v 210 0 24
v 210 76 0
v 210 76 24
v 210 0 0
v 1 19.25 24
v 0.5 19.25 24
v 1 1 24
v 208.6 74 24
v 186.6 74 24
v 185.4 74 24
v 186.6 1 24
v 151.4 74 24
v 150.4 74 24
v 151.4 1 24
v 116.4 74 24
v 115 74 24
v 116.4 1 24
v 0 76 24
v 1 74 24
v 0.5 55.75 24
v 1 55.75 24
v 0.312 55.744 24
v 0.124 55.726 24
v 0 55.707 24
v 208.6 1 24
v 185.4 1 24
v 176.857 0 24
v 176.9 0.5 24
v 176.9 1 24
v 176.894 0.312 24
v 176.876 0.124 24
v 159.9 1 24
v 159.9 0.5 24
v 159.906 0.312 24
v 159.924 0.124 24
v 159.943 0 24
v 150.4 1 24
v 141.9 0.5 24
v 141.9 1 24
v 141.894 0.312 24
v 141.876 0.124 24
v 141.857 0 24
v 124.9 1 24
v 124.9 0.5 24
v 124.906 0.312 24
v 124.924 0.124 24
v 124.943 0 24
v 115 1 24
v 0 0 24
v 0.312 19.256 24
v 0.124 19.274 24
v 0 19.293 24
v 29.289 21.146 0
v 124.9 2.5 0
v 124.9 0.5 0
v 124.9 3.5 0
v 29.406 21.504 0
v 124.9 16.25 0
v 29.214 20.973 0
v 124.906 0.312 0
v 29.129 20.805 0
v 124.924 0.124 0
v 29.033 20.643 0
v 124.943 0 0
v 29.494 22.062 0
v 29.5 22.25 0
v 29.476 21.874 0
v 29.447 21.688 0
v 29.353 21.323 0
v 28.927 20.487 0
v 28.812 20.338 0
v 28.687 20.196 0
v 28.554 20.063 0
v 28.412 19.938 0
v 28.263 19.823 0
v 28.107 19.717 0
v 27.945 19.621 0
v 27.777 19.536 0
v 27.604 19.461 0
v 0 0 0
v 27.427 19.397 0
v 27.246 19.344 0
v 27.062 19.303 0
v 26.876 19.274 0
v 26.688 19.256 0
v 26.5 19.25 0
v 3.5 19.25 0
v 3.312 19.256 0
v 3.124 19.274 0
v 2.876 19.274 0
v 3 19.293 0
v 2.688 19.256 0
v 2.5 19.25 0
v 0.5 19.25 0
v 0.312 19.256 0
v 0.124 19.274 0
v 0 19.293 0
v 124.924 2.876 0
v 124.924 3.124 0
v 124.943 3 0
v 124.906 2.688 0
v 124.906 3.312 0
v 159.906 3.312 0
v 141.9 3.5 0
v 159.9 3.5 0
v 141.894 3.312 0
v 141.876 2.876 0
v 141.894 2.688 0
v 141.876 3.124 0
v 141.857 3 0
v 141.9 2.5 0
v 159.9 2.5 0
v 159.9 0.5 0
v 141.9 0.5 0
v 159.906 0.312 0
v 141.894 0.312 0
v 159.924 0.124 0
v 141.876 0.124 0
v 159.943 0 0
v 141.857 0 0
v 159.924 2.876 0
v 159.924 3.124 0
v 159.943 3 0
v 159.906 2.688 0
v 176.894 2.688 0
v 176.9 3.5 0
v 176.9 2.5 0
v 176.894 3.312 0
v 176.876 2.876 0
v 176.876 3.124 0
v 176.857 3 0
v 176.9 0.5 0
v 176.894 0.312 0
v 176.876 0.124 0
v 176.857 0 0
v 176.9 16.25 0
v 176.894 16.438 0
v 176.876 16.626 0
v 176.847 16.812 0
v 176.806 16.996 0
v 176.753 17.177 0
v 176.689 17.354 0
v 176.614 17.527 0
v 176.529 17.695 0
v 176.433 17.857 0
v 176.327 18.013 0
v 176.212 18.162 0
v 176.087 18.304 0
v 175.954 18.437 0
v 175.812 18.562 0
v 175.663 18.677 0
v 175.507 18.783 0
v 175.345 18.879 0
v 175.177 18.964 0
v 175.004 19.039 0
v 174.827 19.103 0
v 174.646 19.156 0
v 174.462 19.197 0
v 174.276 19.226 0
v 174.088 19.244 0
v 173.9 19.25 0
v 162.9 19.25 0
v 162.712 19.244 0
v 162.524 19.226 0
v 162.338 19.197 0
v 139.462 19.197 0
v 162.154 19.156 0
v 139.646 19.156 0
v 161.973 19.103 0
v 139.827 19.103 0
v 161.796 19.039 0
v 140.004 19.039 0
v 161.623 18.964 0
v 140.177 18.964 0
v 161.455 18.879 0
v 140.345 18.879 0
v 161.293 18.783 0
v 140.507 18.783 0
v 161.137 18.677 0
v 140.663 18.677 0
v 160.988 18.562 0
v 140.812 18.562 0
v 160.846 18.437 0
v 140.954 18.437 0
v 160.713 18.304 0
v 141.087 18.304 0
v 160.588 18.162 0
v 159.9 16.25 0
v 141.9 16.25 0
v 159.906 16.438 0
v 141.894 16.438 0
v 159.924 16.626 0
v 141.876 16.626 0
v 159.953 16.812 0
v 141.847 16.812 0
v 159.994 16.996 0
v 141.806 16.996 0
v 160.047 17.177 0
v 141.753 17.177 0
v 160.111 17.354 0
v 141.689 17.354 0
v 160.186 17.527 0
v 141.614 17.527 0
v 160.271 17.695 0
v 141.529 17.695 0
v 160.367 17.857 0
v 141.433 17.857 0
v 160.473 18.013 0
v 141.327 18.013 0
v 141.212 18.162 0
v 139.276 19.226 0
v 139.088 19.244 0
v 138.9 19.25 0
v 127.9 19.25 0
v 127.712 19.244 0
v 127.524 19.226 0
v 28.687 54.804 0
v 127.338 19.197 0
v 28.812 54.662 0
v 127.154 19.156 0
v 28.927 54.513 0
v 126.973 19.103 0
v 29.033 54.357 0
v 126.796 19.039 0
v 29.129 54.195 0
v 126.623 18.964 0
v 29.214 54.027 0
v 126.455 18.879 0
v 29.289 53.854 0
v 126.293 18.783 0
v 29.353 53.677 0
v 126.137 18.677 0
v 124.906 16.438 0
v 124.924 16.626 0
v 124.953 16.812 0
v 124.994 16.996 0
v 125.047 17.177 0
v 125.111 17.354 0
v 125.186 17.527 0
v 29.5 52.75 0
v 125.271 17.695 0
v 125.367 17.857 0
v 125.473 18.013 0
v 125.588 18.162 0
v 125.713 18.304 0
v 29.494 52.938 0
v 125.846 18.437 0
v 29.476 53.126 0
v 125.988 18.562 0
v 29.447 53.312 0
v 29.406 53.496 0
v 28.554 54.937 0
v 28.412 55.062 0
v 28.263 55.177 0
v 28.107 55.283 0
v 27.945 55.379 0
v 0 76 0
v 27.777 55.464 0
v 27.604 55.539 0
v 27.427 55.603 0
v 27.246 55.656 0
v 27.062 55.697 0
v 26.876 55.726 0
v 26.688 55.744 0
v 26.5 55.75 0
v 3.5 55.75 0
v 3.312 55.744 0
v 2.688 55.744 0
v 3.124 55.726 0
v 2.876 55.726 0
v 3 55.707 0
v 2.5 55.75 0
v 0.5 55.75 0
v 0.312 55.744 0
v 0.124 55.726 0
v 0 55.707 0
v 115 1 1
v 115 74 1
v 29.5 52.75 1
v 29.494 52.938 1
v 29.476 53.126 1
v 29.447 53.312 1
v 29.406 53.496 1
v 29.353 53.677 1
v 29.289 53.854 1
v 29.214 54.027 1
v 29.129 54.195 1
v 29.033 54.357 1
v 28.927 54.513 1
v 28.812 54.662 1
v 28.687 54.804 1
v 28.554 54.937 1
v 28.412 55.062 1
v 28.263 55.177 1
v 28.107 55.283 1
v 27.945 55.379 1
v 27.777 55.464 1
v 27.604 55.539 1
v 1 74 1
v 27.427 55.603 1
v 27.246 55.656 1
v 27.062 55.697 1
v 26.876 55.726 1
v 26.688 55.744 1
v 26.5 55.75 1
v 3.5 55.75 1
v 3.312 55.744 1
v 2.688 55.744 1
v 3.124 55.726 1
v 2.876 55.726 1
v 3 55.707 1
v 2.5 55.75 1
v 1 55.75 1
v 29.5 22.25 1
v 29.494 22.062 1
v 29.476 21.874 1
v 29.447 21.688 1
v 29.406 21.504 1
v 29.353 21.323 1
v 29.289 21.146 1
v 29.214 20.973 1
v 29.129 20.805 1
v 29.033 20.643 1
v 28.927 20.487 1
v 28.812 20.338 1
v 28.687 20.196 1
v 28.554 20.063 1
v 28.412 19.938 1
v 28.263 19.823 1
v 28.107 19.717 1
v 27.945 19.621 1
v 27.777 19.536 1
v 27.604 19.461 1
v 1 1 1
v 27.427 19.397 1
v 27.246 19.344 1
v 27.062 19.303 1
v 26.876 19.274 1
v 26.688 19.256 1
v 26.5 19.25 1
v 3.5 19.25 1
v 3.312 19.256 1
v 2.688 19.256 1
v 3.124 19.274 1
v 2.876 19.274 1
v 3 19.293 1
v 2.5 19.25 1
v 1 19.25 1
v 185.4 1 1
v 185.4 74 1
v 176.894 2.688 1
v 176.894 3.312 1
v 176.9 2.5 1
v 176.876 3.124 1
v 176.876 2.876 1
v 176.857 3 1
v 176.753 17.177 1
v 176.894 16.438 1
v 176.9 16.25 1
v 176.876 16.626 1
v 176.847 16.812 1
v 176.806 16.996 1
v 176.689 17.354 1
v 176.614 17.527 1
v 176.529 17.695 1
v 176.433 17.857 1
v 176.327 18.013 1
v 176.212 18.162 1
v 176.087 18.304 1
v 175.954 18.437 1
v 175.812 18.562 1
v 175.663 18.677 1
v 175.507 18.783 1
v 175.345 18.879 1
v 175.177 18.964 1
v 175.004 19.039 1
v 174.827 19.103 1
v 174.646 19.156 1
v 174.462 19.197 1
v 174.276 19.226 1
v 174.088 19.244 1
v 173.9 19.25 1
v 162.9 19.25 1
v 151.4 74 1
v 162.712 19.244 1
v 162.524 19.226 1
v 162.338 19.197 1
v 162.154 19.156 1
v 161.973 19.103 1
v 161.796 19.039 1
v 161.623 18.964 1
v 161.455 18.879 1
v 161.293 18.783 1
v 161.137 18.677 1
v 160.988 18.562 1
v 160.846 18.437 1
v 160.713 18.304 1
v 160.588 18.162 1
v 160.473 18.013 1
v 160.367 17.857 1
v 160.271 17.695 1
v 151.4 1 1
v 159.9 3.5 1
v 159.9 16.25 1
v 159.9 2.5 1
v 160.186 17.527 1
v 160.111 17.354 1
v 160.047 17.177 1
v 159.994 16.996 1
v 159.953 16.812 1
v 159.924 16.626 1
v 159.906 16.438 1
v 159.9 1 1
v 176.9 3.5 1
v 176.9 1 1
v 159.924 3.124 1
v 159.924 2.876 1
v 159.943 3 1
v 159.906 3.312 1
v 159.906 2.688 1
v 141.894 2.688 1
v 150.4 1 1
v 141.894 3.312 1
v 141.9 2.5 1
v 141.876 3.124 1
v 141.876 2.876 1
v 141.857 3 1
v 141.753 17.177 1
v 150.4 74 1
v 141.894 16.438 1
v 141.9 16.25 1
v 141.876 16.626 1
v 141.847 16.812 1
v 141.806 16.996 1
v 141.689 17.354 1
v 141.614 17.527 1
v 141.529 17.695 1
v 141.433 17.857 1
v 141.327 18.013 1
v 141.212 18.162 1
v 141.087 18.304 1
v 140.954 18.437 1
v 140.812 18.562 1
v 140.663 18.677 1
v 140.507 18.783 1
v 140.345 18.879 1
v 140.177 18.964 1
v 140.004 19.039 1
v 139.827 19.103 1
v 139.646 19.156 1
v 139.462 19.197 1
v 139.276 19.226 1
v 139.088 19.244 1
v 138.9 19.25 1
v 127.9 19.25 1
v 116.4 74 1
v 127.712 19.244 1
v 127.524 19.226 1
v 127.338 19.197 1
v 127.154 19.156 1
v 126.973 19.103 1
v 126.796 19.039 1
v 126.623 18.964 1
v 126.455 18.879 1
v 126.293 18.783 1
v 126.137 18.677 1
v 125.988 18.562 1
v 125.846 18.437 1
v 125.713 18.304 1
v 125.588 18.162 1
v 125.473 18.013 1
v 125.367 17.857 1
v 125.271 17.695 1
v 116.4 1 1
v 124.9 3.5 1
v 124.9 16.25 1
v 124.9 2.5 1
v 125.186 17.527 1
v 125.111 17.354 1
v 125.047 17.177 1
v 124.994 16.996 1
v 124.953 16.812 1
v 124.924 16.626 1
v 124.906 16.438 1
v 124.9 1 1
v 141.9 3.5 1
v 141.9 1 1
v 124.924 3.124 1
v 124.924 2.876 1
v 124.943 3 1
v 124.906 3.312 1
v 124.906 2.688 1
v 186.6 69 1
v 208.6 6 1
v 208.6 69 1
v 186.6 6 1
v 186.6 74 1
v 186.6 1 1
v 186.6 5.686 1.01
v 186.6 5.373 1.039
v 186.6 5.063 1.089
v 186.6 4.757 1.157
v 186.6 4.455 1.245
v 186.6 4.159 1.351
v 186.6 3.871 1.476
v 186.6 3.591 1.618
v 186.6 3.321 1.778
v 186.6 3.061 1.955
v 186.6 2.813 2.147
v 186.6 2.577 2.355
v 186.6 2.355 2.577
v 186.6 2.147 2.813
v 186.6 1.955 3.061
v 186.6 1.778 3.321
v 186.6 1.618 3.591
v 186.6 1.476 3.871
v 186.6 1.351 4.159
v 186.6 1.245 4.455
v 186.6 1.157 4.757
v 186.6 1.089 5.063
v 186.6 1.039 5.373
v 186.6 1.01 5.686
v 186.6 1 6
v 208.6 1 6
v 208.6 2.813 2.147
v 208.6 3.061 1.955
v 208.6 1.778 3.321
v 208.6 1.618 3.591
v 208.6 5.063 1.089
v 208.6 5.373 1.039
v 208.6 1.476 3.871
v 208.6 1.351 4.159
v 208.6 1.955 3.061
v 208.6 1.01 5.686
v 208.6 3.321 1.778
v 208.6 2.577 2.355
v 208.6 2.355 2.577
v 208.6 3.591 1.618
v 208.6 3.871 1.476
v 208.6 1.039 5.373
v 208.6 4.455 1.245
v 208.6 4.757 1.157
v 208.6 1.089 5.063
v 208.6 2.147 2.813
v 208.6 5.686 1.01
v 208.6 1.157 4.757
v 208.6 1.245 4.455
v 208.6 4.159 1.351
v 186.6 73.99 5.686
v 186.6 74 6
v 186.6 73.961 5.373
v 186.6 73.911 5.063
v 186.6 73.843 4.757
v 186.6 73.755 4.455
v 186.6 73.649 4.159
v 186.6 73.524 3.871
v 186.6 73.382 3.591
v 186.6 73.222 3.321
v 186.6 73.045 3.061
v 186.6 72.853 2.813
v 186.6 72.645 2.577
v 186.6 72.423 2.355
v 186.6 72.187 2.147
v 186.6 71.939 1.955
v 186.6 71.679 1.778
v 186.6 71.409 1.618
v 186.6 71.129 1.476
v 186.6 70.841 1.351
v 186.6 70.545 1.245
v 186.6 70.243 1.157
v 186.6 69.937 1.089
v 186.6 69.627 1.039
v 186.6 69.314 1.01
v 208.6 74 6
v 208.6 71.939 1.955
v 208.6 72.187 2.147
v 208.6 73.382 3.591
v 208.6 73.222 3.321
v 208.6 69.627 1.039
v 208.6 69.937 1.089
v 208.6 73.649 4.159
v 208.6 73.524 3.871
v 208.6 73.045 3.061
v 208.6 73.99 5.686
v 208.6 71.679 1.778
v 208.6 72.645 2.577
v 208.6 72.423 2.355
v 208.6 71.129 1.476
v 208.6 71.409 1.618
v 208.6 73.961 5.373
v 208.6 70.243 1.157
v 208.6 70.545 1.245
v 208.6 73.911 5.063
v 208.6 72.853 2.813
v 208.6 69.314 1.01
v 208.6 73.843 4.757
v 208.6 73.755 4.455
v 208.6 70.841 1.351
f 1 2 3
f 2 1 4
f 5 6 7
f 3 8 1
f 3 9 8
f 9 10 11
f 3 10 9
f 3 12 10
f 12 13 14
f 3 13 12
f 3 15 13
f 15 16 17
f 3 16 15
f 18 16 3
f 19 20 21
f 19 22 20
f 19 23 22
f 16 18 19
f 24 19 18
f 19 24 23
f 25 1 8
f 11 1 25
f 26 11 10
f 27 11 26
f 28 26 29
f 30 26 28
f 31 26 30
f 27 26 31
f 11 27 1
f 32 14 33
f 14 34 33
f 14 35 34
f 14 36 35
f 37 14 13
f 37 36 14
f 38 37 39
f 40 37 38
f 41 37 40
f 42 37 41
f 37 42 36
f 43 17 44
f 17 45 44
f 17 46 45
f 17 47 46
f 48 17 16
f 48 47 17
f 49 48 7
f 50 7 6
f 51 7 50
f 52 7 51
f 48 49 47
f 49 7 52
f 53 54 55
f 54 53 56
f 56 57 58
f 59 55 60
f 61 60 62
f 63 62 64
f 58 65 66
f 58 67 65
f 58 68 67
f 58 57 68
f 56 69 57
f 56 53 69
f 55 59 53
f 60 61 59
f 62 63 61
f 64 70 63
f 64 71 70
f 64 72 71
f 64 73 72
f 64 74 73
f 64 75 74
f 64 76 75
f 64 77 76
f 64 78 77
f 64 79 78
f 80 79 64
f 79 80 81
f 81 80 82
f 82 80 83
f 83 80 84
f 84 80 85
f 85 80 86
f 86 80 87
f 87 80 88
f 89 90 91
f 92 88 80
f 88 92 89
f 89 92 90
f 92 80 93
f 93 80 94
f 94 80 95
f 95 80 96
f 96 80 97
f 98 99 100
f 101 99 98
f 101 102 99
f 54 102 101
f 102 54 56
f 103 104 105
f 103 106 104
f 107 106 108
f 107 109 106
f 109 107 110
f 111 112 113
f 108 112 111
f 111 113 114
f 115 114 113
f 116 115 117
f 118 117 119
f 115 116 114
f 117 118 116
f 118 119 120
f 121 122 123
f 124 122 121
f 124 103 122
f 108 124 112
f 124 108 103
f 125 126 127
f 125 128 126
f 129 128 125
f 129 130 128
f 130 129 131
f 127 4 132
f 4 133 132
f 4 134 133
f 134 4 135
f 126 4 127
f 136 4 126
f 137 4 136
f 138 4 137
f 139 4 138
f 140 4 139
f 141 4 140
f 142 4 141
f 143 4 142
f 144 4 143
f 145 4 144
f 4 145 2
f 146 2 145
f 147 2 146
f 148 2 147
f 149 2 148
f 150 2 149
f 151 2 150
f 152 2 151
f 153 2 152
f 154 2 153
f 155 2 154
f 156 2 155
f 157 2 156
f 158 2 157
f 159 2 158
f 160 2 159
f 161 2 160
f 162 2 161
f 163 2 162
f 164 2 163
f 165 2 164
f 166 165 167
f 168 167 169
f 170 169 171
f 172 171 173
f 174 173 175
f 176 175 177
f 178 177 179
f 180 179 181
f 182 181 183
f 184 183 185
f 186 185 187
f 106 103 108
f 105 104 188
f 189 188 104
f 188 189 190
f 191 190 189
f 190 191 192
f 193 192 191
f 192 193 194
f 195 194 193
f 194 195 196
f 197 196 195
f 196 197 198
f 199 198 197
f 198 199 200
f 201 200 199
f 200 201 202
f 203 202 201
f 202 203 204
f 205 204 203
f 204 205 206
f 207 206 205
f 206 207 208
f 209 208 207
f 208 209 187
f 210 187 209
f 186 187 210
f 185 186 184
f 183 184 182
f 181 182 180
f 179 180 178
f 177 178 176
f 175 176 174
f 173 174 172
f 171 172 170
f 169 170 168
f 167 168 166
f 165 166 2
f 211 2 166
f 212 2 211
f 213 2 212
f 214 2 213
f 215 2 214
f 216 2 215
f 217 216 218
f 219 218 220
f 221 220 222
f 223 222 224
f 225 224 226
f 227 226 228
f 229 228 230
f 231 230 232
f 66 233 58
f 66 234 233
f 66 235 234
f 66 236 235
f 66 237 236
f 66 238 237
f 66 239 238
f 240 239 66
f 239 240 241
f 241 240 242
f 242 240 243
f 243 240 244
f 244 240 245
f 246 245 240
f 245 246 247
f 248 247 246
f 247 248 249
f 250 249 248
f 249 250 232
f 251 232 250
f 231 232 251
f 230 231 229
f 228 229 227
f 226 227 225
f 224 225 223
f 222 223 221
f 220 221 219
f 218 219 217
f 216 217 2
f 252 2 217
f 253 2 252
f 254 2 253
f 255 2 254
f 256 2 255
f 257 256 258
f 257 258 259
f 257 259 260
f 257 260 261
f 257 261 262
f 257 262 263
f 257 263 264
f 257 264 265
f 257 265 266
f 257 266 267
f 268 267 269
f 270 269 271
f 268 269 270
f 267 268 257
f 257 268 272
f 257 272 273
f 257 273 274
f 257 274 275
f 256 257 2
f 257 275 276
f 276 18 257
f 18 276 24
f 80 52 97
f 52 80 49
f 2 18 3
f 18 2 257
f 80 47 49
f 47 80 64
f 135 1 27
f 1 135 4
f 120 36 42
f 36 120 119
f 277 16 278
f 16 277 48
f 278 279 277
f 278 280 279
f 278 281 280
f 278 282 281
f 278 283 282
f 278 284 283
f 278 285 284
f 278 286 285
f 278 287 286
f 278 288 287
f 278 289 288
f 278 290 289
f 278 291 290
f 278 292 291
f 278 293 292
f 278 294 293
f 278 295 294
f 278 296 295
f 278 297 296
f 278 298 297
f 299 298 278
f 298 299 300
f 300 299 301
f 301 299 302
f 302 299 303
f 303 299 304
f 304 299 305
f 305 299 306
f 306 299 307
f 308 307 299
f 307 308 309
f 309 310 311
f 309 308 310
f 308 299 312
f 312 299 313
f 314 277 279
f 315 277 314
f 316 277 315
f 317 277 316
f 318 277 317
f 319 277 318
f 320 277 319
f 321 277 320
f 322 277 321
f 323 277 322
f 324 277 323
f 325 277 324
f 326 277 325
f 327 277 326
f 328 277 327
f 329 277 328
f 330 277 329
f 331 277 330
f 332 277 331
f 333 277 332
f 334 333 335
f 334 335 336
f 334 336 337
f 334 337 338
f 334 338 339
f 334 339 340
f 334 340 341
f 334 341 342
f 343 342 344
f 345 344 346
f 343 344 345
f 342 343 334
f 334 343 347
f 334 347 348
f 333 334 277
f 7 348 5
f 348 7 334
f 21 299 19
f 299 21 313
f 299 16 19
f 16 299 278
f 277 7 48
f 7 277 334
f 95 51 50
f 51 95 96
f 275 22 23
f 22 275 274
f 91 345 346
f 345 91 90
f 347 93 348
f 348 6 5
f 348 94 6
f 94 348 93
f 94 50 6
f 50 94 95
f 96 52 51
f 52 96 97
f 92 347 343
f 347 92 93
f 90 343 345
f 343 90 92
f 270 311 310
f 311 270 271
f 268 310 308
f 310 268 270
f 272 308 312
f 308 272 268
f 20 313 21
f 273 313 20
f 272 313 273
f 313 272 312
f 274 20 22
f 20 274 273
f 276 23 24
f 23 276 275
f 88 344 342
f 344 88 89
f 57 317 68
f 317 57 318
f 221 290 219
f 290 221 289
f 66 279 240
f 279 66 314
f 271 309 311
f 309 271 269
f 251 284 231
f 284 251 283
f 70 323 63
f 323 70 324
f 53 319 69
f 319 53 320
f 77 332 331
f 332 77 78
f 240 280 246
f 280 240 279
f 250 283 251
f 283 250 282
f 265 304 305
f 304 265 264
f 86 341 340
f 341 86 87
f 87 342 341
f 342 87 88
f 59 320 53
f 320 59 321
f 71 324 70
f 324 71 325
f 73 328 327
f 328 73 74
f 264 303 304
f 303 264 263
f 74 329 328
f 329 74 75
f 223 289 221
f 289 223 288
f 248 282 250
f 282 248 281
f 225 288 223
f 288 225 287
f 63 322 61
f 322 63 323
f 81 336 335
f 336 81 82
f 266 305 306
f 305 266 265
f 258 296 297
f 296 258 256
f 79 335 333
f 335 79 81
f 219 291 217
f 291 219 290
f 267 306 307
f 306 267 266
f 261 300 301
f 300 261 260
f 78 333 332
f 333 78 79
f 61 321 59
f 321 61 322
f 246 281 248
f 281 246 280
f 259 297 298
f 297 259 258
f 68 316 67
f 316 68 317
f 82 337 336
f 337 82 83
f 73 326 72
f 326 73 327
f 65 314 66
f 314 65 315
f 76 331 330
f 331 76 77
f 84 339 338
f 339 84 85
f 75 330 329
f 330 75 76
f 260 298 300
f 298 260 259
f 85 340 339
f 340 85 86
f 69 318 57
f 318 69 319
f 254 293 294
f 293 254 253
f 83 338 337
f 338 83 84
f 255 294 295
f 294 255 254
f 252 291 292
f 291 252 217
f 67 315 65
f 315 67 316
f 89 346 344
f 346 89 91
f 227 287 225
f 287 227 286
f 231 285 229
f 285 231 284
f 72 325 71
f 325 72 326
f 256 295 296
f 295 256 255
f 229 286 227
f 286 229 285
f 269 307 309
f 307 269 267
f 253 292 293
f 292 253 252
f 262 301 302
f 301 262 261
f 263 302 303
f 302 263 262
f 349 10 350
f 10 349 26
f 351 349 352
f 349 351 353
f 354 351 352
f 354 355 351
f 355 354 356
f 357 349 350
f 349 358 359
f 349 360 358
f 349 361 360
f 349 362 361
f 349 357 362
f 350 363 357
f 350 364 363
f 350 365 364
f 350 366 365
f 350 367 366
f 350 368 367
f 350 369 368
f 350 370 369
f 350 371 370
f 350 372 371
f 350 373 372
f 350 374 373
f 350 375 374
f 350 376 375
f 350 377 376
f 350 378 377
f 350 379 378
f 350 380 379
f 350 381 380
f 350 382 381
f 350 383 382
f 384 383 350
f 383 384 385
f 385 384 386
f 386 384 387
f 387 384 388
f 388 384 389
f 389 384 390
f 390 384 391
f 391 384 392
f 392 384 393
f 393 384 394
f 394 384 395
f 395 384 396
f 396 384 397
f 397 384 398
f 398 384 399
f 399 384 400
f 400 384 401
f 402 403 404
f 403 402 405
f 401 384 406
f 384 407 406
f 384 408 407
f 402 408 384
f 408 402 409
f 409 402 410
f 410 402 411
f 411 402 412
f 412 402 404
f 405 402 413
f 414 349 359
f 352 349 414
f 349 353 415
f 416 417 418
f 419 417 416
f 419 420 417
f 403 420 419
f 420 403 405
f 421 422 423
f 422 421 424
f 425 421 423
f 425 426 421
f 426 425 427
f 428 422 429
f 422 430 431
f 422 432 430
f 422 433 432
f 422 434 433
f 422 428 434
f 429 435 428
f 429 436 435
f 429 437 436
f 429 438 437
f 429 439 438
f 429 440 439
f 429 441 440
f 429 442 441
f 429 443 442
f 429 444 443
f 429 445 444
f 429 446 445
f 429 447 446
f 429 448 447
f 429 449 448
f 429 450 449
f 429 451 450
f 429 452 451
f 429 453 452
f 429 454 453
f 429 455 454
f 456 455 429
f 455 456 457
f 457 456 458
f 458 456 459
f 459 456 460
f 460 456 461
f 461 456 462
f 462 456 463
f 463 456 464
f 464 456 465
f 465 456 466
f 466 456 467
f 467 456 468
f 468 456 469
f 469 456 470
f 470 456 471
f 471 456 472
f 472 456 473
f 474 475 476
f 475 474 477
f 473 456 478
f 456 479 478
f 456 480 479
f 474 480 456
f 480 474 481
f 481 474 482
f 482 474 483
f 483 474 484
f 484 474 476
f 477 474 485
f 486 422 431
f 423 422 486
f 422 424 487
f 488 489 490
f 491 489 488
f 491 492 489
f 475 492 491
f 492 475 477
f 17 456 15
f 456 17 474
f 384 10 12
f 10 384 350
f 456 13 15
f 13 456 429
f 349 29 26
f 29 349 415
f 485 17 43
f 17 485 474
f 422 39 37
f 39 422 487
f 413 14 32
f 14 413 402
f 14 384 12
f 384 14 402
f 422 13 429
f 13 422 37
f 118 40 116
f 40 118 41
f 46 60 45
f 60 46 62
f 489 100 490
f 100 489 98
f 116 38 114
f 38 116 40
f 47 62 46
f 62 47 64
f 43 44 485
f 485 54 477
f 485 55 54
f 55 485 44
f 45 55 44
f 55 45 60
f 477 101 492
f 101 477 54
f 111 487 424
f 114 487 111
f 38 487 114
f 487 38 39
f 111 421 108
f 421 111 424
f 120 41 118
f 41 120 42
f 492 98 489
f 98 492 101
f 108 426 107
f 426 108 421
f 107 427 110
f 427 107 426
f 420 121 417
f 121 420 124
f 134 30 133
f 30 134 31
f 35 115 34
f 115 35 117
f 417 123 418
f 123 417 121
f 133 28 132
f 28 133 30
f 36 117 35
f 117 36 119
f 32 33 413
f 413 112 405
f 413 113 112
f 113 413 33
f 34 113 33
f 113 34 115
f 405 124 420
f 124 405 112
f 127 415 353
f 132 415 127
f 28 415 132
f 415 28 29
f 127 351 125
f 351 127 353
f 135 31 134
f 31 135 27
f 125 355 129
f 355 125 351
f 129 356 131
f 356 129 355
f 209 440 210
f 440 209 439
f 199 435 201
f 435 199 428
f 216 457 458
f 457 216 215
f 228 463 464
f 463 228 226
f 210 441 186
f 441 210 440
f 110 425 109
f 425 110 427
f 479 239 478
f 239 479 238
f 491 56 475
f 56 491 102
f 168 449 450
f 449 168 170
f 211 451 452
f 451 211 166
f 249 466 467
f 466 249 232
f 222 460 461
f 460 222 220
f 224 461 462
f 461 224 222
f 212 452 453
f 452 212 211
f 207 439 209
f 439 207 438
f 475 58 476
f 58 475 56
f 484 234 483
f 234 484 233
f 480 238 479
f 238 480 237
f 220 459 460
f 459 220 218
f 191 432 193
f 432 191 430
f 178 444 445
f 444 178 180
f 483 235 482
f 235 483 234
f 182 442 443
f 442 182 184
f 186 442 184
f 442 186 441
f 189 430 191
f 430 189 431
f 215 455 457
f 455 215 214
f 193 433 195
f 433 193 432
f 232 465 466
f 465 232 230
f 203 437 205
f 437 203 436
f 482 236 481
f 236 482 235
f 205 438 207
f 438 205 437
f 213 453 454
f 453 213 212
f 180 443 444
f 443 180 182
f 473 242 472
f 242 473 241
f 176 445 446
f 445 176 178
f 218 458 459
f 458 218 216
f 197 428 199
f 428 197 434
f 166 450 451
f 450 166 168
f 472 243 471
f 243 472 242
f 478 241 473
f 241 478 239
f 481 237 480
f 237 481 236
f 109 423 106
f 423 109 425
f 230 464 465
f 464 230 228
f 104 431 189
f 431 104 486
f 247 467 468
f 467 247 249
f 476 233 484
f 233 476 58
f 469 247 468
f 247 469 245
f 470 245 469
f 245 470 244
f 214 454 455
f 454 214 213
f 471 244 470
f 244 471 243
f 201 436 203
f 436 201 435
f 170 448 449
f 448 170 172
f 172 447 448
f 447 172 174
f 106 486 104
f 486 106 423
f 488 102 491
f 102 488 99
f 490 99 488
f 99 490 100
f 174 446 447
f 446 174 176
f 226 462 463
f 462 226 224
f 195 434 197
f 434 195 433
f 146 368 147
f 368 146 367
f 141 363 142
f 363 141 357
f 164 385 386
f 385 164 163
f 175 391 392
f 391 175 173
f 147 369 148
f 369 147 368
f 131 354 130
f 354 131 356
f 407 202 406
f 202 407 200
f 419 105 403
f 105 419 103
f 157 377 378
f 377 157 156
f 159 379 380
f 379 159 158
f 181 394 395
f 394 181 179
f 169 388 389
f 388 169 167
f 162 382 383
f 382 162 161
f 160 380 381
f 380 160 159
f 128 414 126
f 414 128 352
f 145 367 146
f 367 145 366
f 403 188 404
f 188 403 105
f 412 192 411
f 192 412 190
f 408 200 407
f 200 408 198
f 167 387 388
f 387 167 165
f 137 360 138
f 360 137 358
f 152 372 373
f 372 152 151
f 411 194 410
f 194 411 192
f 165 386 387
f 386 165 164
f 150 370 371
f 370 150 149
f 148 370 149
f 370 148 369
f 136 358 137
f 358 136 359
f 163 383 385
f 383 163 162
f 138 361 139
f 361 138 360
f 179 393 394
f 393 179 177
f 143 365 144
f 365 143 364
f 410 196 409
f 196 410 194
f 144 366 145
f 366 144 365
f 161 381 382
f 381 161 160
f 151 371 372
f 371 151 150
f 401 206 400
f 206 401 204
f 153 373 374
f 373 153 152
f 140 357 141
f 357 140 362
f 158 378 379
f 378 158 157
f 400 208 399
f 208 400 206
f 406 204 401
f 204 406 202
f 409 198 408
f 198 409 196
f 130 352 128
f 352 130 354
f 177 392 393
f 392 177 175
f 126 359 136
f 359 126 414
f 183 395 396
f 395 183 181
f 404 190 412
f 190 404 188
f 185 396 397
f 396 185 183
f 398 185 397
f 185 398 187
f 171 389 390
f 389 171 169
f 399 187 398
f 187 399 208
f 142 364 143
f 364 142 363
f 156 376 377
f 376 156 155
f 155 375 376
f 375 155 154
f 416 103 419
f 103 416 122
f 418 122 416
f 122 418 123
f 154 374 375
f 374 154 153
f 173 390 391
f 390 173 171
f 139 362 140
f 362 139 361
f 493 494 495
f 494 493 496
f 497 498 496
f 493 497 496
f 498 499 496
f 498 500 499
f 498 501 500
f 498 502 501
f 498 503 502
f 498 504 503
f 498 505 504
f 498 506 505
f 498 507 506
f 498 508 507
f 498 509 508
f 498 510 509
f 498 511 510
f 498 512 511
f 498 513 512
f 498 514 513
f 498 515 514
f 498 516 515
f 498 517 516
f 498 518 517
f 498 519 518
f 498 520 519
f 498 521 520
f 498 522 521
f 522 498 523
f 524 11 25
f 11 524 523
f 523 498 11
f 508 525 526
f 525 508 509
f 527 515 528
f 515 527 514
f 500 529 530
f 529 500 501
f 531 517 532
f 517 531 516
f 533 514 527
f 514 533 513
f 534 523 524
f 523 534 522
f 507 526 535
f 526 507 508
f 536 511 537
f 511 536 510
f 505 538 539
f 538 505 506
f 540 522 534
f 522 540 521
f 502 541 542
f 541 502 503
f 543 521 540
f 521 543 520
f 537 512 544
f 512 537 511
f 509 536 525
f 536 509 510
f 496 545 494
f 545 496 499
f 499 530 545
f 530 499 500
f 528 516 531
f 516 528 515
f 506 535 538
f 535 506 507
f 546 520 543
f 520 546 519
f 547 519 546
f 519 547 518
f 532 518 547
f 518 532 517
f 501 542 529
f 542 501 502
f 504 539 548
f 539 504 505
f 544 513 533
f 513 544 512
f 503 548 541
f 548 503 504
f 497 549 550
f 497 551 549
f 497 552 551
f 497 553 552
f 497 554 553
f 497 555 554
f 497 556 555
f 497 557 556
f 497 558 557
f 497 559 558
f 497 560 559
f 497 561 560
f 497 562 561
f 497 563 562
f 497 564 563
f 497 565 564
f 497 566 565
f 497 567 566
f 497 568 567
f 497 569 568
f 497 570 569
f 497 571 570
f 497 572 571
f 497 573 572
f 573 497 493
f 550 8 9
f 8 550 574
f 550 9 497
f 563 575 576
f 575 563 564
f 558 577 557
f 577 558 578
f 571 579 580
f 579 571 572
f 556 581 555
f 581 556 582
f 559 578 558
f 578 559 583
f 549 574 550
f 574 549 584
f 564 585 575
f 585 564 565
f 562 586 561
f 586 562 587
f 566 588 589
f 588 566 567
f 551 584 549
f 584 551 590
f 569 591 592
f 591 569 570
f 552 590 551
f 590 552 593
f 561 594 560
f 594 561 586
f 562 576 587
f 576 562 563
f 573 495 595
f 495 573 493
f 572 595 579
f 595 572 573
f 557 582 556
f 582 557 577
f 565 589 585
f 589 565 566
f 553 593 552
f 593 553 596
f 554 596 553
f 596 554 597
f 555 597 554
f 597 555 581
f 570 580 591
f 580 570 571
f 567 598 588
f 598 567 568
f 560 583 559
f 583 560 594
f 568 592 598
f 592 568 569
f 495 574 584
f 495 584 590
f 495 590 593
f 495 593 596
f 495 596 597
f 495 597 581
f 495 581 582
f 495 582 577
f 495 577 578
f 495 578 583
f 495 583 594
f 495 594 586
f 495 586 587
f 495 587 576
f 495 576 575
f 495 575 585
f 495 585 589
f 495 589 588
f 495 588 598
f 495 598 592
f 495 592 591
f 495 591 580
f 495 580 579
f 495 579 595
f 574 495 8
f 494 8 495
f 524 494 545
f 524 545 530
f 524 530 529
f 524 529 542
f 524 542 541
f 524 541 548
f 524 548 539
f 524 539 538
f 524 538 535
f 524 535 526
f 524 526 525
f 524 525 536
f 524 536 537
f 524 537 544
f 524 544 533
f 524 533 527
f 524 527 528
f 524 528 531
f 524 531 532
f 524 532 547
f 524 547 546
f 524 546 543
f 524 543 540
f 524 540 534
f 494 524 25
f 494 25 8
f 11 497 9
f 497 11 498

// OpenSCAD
include <boardgame_insert_toolkit_lib.2.scad>;

// determines whether lids are output.
g_b_print_lid = true;

// determines whether boxes are output.
g_b_print_box = true; 

// Focus on one box
g_isolated_print_box = ""; 

// Used to visualize how all of the boxes fit together. 
g_b_visualization = false;          
        
// this is the outer wall thickness. 
//Default = 1.5mm
g_wall_thickness = 1.0;

// The tolerance value is extra space put between planes of the lid and box that fit together.
// Increase the tolerance to loosen the fit and decrease it to tighten it.
//
// Note that the tolerance is applied exclusively to the lid.
// So if the lid is too tight or too loose, change this value ( up for looser fit, down for tighter fit ) and 
// you only need to reprint the lid.
// 
// The exception is the stackable box, where the bottom of the box is the lid of the box below,
// in which case the tolerance also affects that box bottom.
//
g_tolerance = 0.15;

// This adjusts the position of the lid detents downward. 
// The larger the value, the bigger the gap between the lid and the box.
g_tolerance_detents_pos = 0.1;

aw_size_x = 210.0;
aw_size_y = 76.0;
aw_size_z = 24.0;


data =
  [
    [
      "simple box",
      [
        [ BOX_SIZE_XYZ, [aw_size_x, aw_size_y, aw_size_z] ],
        [ BOX_NO_LID_B, t],
        [
          BOX_COMPONENT,
          [
            [
              CMP_COMPARTMENT_SIZE_XYZ,
              [
                114,
                (aw_size_y - 1.0 - 1.0 - 1.0),
                aw_size_z - g_wall_thickness
              ]
            ],
            [ CMP_NUM_COMPARTMENTS_XY, [1, 1] ],
            //[ CMP_FILLET_RADIUS, 5.0 ],
            [ POSITION_XY, [0, 0] ],
            [ CMP_CUTOUT_SIDES_4B,   [f,f,t,f]],
            //[ CMP_CUTOUT_DEPTH_PCT,  20],
            //[ CMP_CUTOUT_WIDTH_PCT,  50],
            [ CMP_CUTOUT_HEIGHT_PCT, 100], 
          ]
        ],
        [
          BOX_COMPONENT,
          [
            [
              CMP_COMPARTMENT_SIZE_XYZ,
              [
                34,
                (aw_size_y - 1.0 - 1.0 - 1.0),
                aw_size_z - g_wall_thickness
              ]
            ],
            [ CMP_NUM_COMPARTMENTS_XY, [2, 1] ],
            //[ CMP_FILLET_RADIUS, 5.0 ],
            [ POSITION_XY, [115.4, 0] ],
            [ CMP_CUTOUT_SIDES_4B,   [t,f,f,f]],
            //[ CMP_CUTOUT_DEPTH_PCT,  20],
            //[ CMP_CUTOUT_WIDTH_PCT,  50],
            [ CMP_CUTOUT_HEIGHT_PCT, 100], 
          ]
        ],
        [
          BOX_COMPONENT,
          [
            [
              CMP_COMPARTMENT_SIZE_XYZ,
              [
                22,
                (aw_size_y - 1.0 - 1.0 - 1.0),
                aw_size_z - g_wall_thickness
              ]
            ],
            [ CMP_NUM_COMPARTMENTS_XY, [1, 1] ],
            //[ CMP_FILLET_RADIUS, 5.0 ],
            [ POSITION_XY, [185.6, 0] ],
            [ CMP_CUTOUT_SIDES_4B,   [f,f,f,f]],
            //[ CMP_CUTOUT_DEPTH_PCT,  20],
            //[ CMP_CUTOUT_WIDTH_PCT,  50],
            //[ CMP_CUTOUT_HEIGHT_PCT, 100], 
            [ CMP_SHAPE_ROTATED_B, t ],
            [ CMP_SHAPE, FILLET ],
            [ CMP_FILLET_RADIUS, 5.0 ],
          ]
        ],
      ]
    ]
  ];

MakeAll();
